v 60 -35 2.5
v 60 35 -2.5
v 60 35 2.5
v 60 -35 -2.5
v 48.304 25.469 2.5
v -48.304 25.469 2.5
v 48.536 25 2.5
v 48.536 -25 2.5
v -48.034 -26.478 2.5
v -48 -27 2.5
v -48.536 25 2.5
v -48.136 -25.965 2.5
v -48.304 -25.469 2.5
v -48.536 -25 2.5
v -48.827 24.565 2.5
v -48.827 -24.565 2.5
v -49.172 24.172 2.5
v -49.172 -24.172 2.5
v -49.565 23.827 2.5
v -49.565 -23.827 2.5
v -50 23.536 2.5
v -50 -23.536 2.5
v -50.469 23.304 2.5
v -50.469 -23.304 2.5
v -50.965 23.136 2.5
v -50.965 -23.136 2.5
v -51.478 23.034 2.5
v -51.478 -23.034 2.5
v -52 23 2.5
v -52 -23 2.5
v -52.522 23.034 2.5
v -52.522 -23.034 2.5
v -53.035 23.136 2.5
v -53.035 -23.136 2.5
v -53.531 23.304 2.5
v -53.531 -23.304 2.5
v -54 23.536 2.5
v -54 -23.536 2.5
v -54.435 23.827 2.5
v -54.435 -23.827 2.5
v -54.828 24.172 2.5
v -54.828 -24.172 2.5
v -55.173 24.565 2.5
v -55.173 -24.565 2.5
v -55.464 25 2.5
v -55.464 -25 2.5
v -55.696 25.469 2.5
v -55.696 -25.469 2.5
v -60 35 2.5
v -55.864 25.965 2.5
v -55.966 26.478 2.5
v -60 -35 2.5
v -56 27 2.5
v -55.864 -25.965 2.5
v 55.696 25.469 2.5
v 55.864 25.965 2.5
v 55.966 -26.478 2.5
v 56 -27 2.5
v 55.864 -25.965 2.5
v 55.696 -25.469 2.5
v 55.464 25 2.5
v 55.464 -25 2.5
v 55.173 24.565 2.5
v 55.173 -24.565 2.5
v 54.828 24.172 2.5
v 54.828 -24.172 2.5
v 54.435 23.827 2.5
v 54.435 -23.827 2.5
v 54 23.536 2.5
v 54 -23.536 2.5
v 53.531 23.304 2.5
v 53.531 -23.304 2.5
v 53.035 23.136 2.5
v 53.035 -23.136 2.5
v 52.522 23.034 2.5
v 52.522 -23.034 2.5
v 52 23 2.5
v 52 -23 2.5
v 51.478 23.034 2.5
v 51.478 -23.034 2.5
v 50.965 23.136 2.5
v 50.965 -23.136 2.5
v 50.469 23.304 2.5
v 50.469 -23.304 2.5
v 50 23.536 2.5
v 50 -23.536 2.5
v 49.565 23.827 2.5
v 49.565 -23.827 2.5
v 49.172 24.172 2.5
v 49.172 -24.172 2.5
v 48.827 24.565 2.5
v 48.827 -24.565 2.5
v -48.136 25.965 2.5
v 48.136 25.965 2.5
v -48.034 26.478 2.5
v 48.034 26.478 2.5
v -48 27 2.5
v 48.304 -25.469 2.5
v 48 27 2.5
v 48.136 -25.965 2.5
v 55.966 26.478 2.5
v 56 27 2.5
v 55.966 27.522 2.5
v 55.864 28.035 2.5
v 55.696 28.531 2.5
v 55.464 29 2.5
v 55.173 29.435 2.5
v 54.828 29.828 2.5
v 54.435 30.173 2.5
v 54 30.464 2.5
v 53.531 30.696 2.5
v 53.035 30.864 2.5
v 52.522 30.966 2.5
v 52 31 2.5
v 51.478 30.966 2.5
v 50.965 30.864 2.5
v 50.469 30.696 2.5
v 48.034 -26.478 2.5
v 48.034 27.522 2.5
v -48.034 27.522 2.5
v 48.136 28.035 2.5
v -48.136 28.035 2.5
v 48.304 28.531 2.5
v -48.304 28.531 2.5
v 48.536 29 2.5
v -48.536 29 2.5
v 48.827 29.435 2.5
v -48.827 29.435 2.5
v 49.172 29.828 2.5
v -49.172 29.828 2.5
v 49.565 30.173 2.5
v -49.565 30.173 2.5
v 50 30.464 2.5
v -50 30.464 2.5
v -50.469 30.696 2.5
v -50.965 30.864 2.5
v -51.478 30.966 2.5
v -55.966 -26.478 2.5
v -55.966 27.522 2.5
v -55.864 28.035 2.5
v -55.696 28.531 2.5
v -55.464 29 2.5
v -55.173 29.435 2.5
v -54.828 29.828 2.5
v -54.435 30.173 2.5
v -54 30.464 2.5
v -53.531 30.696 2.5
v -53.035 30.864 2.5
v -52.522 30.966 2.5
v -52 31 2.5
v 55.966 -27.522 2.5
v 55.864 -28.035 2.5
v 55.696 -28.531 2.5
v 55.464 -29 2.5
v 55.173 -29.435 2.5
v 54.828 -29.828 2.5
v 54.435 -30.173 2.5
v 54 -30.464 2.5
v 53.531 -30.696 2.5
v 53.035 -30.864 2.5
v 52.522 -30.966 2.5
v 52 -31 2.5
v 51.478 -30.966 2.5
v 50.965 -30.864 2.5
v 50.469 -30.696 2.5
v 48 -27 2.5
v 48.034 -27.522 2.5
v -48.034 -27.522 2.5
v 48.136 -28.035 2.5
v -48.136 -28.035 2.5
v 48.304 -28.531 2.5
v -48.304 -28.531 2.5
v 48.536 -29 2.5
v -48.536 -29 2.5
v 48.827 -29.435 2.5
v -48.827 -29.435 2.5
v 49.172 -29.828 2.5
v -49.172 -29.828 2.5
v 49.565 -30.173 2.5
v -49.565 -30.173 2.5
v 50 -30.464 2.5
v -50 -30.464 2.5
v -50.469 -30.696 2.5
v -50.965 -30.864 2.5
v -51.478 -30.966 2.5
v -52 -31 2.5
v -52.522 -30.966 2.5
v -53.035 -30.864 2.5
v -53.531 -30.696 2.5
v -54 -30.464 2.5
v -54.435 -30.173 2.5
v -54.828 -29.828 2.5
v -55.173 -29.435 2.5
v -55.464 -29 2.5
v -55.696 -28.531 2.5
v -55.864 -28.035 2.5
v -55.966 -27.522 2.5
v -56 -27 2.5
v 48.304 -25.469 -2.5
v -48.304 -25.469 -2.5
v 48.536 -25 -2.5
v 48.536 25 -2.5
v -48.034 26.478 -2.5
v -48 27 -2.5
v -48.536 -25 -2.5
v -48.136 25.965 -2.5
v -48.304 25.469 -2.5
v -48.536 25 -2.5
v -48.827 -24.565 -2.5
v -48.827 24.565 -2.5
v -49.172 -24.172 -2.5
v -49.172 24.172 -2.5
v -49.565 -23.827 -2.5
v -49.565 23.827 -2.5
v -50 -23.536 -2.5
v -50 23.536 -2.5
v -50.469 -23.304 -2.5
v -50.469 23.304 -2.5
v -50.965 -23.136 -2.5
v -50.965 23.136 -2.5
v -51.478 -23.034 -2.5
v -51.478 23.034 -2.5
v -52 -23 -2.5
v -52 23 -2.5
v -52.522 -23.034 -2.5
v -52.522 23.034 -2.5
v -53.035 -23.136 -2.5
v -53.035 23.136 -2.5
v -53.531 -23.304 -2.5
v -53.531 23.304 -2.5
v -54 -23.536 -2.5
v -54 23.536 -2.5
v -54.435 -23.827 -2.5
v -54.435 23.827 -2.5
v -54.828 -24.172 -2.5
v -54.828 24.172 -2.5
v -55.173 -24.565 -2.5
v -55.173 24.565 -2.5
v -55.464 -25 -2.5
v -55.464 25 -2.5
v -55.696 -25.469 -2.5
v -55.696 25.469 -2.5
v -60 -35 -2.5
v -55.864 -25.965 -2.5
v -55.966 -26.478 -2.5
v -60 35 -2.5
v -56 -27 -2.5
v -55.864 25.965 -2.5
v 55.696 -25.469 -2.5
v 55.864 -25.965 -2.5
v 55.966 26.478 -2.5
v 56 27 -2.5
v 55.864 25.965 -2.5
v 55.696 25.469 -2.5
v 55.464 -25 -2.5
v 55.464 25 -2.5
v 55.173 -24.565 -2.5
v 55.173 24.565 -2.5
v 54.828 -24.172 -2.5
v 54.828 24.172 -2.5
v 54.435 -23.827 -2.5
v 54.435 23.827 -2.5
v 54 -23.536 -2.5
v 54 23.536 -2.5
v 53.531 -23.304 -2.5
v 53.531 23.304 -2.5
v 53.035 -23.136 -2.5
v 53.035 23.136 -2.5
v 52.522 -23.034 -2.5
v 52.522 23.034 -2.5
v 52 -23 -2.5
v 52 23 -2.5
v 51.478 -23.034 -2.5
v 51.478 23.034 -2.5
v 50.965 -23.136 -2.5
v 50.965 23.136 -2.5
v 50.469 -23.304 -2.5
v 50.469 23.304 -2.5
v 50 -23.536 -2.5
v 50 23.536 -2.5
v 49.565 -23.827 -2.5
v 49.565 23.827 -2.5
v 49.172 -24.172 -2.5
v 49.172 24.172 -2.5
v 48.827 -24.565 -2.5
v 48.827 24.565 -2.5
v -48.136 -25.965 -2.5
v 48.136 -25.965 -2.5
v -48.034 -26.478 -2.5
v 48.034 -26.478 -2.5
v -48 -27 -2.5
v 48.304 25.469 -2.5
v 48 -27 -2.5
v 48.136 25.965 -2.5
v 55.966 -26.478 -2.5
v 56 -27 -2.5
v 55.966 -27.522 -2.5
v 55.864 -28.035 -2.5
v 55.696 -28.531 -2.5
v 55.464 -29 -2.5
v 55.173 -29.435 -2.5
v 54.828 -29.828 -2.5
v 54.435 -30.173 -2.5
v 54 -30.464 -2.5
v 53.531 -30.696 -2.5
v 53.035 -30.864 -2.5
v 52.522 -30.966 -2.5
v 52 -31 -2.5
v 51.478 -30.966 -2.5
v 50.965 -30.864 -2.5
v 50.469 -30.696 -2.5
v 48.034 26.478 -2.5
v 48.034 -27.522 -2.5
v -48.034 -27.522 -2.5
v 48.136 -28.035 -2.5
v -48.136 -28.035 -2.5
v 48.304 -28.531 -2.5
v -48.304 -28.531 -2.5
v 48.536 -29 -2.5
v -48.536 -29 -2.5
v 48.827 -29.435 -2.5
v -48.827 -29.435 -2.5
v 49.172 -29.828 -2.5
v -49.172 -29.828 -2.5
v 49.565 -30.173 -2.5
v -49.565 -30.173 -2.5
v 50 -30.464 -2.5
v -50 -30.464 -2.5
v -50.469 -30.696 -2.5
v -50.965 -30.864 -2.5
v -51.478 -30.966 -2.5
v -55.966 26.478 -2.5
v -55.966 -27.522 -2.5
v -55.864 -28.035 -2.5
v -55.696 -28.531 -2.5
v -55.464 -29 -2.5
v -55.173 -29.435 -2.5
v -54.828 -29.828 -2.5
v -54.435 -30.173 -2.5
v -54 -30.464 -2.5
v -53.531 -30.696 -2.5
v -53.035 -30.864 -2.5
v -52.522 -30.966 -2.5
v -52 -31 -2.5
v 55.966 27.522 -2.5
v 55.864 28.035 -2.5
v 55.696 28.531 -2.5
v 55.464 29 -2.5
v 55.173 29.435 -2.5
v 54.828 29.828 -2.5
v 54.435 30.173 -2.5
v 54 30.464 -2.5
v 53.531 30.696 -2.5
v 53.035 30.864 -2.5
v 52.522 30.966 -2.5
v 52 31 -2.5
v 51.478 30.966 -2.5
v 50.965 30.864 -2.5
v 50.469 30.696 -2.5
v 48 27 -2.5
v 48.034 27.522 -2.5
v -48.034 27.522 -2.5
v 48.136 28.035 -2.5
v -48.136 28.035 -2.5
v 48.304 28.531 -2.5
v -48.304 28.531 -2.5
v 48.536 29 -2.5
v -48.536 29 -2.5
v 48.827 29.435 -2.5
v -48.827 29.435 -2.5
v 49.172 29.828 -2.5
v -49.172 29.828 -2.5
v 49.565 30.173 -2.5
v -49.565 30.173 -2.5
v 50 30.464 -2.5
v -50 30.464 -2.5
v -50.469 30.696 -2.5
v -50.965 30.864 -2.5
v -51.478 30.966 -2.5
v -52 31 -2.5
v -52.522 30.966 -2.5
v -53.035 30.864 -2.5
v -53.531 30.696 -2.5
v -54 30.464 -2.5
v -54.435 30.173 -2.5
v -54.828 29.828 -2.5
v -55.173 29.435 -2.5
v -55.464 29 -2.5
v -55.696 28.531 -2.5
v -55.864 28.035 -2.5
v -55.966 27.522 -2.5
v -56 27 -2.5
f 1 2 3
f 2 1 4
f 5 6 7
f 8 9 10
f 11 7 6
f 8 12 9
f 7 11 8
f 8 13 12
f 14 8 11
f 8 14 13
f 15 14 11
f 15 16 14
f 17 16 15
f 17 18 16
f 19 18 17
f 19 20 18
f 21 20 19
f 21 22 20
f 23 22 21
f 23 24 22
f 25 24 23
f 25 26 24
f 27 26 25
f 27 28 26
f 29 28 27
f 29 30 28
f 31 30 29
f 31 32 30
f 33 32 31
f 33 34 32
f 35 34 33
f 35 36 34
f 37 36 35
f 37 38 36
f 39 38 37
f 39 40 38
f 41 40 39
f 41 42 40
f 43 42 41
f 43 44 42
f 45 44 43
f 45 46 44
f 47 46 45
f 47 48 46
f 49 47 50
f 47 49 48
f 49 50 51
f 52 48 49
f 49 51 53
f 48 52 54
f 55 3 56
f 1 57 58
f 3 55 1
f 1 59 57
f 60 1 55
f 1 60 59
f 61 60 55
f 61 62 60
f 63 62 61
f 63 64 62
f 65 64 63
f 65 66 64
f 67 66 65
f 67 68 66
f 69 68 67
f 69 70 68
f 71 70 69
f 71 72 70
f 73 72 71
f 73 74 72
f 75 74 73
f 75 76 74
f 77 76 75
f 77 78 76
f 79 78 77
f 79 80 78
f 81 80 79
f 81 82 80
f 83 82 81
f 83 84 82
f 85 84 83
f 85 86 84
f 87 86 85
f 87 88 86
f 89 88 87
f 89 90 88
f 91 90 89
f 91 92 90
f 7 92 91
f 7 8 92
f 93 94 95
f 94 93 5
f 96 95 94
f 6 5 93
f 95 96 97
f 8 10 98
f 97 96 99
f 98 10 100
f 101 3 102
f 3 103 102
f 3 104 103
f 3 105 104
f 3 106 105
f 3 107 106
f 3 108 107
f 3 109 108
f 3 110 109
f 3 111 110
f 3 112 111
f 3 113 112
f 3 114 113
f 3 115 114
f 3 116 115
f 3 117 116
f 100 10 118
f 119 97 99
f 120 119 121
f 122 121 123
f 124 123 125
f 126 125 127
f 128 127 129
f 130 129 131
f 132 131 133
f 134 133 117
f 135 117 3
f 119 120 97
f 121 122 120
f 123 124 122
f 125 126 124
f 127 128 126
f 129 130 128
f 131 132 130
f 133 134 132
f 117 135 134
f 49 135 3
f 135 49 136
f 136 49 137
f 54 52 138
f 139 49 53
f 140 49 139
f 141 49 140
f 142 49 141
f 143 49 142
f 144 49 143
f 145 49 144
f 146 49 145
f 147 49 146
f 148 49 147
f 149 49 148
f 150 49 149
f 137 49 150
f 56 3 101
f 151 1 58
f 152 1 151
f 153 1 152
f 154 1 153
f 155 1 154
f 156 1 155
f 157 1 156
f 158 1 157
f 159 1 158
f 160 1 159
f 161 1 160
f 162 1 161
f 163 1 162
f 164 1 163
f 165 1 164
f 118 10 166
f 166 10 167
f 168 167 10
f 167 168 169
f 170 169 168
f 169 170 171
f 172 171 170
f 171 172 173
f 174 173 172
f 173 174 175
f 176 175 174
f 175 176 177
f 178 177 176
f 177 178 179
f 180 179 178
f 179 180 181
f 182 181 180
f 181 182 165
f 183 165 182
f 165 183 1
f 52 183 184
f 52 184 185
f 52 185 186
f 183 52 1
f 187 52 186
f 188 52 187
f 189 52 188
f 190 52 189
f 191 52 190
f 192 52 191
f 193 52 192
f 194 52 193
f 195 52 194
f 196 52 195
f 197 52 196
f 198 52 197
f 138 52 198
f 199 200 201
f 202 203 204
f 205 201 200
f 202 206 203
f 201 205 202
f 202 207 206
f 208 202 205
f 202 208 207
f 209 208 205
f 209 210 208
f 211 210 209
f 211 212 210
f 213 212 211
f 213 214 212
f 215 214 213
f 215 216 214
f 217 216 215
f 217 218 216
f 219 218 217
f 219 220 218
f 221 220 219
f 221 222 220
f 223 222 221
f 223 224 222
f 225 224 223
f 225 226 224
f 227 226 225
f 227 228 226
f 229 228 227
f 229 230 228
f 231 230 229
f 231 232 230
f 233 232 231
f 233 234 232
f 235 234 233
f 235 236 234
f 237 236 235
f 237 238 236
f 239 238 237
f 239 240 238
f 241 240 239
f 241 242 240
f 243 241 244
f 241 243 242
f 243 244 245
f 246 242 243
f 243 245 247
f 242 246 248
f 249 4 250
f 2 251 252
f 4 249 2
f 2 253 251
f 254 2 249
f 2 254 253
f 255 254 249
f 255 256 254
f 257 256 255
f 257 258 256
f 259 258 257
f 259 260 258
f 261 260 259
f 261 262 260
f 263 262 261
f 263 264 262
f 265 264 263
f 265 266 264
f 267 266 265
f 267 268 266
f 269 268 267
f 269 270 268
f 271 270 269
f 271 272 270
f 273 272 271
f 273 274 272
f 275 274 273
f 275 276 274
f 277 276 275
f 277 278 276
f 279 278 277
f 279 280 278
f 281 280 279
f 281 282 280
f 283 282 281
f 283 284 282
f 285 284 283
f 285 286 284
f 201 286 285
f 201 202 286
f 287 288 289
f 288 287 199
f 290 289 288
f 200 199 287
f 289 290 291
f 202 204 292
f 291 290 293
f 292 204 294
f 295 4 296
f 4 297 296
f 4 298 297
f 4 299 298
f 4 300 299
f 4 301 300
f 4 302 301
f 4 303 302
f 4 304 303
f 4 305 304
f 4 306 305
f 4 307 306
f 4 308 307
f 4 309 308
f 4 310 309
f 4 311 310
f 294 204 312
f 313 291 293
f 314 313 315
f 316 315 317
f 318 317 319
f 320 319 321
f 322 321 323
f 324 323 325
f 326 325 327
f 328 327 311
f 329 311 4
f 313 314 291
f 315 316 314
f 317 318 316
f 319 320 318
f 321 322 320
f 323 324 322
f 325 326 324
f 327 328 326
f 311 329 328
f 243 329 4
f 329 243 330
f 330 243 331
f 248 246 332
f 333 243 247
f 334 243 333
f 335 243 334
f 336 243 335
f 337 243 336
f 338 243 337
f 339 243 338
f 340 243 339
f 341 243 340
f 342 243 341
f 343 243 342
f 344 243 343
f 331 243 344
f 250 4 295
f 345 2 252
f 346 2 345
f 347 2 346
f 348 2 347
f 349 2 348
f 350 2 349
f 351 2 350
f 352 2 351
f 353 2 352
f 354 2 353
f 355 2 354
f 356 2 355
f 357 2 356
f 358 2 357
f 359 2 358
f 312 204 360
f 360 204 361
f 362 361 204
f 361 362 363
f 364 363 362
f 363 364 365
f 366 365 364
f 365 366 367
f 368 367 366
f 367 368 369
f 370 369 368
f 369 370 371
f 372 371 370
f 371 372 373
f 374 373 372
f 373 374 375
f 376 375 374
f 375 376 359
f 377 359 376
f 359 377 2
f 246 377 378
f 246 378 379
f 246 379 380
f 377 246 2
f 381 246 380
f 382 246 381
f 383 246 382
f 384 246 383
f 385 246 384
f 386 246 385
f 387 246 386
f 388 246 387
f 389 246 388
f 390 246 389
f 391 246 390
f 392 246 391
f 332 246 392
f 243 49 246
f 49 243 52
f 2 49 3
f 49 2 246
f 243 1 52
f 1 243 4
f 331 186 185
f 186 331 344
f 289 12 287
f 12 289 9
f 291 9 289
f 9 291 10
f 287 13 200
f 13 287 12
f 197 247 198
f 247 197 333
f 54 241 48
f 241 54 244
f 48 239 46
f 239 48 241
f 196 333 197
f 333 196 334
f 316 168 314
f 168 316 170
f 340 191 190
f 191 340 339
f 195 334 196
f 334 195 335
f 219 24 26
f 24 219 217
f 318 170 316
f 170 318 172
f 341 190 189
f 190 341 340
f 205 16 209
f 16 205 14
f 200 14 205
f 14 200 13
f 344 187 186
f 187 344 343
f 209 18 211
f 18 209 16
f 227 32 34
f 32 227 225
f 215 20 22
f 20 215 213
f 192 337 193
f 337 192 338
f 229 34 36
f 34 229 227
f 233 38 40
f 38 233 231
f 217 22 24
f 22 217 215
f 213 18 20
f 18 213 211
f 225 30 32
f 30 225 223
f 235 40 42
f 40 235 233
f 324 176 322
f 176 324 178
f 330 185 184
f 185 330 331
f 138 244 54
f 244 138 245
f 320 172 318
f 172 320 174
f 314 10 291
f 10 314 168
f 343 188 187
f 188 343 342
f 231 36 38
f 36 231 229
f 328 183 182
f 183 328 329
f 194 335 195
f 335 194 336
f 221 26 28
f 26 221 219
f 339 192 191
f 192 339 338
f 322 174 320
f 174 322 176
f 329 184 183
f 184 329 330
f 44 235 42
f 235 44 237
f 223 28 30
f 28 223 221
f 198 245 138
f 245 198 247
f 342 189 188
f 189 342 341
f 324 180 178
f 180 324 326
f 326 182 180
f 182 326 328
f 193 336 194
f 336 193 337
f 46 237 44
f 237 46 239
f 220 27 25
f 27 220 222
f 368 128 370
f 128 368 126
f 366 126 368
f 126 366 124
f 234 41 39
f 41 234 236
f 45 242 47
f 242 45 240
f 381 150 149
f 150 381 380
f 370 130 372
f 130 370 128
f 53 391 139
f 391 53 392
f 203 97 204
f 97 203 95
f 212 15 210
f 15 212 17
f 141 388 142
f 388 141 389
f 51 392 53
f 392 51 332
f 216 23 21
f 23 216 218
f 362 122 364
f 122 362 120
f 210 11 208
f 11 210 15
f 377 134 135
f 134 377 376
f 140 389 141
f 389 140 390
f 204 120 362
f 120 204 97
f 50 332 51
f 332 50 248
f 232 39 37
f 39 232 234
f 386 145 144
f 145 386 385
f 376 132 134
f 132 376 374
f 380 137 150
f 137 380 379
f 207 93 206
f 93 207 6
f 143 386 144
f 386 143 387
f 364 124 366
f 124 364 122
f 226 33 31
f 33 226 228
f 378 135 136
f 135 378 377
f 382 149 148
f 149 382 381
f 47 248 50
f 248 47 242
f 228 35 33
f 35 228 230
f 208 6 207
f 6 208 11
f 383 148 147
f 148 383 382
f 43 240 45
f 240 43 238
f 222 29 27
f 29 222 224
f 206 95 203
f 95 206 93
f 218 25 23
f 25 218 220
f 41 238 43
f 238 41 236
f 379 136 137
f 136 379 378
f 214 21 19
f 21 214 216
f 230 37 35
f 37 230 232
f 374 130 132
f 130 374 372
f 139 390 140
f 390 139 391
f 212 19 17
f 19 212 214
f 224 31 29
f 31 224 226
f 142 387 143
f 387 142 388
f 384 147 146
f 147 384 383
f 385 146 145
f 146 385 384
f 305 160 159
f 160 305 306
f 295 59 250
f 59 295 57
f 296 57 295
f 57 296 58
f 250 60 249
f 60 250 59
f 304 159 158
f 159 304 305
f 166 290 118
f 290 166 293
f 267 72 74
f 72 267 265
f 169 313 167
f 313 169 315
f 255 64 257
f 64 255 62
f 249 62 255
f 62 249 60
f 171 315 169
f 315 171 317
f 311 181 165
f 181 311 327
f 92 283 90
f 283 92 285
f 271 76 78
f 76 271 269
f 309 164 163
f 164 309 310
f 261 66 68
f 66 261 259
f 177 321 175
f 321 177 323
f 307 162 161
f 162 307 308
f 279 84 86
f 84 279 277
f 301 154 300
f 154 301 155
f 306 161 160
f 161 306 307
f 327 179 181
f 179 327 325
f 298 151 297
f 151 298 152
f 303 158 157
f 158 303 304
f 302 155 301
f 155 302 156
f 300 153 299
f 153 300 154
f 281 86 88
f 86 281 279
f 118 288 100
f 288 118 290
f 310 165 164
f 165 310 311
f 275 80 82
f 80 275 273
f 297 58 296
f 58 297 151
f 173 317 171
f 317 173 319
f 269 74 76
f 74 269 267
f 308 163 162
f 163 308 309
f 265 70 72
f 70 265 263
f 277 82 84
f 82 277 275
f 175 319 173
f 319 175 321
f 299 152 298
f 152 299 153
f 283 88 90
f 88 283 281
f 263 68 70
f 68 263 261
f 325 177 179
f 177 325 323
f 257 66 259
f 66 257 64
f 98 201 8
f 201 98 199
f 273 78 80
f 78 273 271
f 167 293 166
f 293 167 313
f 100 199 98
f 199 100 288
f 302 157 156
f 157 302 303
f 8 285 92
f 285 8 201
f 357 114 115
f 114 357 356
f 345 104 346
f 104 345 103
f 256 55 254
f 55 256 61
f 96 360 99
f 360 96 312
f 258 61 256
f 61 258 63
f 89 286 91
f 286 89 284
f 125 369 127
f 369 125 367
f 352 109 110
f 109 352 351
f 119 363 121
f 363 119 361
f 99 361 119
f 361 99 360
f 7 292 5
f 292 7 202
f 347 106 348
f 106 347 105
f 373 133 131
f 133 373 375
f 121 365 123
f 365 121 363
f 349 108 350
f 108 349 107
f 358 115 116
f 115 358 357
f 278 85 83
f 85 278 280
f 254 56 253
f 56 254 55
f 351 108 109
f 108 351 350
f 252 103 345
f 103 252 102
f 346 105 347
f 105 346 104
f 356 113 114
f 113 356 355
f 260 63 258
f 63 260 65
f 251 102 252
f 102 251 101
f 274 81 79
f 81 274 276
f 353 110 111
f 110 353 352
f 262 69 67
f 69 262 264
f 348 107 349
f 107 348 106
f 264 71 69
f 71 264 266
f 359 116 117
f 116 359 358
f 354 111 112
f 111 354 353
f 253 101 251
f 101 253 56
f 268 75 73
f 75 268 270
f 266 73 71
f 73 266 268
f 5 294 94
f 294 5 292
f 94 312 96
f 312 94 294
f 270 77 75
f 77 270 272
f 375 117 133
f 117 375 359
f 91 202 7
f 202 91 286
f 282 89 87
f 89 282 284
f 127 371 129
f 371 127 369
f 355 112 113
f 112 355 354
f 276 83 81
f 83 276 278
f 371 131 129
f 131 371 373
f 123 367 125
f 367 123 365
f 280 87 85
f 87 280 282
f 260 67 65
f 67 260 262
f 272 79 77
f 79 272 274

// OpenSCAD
// ========================================
// a 120 x 70 x 5 mm plate with four 8 mm holes
// NeuroCAD canonical IR; dimensions are millimetres
// ========================================
$fn = 48;

difference() {
  cube(size=[120, 70, 5], center=true);
  translate([-52, -27, 0]) {
    cylinder(r=4, h=7, center=true);
  }
  translate([-52, 27, 0]) {
    cylinder(r=4, h=7, center=true);
  }
  translate([52, -27, 0]) {
    cylinder(r=4, h=7, center=true);
  }
  translate([52, 27, 0]) {
    cylinder(r=4, h=7, center=true);
  }
}
